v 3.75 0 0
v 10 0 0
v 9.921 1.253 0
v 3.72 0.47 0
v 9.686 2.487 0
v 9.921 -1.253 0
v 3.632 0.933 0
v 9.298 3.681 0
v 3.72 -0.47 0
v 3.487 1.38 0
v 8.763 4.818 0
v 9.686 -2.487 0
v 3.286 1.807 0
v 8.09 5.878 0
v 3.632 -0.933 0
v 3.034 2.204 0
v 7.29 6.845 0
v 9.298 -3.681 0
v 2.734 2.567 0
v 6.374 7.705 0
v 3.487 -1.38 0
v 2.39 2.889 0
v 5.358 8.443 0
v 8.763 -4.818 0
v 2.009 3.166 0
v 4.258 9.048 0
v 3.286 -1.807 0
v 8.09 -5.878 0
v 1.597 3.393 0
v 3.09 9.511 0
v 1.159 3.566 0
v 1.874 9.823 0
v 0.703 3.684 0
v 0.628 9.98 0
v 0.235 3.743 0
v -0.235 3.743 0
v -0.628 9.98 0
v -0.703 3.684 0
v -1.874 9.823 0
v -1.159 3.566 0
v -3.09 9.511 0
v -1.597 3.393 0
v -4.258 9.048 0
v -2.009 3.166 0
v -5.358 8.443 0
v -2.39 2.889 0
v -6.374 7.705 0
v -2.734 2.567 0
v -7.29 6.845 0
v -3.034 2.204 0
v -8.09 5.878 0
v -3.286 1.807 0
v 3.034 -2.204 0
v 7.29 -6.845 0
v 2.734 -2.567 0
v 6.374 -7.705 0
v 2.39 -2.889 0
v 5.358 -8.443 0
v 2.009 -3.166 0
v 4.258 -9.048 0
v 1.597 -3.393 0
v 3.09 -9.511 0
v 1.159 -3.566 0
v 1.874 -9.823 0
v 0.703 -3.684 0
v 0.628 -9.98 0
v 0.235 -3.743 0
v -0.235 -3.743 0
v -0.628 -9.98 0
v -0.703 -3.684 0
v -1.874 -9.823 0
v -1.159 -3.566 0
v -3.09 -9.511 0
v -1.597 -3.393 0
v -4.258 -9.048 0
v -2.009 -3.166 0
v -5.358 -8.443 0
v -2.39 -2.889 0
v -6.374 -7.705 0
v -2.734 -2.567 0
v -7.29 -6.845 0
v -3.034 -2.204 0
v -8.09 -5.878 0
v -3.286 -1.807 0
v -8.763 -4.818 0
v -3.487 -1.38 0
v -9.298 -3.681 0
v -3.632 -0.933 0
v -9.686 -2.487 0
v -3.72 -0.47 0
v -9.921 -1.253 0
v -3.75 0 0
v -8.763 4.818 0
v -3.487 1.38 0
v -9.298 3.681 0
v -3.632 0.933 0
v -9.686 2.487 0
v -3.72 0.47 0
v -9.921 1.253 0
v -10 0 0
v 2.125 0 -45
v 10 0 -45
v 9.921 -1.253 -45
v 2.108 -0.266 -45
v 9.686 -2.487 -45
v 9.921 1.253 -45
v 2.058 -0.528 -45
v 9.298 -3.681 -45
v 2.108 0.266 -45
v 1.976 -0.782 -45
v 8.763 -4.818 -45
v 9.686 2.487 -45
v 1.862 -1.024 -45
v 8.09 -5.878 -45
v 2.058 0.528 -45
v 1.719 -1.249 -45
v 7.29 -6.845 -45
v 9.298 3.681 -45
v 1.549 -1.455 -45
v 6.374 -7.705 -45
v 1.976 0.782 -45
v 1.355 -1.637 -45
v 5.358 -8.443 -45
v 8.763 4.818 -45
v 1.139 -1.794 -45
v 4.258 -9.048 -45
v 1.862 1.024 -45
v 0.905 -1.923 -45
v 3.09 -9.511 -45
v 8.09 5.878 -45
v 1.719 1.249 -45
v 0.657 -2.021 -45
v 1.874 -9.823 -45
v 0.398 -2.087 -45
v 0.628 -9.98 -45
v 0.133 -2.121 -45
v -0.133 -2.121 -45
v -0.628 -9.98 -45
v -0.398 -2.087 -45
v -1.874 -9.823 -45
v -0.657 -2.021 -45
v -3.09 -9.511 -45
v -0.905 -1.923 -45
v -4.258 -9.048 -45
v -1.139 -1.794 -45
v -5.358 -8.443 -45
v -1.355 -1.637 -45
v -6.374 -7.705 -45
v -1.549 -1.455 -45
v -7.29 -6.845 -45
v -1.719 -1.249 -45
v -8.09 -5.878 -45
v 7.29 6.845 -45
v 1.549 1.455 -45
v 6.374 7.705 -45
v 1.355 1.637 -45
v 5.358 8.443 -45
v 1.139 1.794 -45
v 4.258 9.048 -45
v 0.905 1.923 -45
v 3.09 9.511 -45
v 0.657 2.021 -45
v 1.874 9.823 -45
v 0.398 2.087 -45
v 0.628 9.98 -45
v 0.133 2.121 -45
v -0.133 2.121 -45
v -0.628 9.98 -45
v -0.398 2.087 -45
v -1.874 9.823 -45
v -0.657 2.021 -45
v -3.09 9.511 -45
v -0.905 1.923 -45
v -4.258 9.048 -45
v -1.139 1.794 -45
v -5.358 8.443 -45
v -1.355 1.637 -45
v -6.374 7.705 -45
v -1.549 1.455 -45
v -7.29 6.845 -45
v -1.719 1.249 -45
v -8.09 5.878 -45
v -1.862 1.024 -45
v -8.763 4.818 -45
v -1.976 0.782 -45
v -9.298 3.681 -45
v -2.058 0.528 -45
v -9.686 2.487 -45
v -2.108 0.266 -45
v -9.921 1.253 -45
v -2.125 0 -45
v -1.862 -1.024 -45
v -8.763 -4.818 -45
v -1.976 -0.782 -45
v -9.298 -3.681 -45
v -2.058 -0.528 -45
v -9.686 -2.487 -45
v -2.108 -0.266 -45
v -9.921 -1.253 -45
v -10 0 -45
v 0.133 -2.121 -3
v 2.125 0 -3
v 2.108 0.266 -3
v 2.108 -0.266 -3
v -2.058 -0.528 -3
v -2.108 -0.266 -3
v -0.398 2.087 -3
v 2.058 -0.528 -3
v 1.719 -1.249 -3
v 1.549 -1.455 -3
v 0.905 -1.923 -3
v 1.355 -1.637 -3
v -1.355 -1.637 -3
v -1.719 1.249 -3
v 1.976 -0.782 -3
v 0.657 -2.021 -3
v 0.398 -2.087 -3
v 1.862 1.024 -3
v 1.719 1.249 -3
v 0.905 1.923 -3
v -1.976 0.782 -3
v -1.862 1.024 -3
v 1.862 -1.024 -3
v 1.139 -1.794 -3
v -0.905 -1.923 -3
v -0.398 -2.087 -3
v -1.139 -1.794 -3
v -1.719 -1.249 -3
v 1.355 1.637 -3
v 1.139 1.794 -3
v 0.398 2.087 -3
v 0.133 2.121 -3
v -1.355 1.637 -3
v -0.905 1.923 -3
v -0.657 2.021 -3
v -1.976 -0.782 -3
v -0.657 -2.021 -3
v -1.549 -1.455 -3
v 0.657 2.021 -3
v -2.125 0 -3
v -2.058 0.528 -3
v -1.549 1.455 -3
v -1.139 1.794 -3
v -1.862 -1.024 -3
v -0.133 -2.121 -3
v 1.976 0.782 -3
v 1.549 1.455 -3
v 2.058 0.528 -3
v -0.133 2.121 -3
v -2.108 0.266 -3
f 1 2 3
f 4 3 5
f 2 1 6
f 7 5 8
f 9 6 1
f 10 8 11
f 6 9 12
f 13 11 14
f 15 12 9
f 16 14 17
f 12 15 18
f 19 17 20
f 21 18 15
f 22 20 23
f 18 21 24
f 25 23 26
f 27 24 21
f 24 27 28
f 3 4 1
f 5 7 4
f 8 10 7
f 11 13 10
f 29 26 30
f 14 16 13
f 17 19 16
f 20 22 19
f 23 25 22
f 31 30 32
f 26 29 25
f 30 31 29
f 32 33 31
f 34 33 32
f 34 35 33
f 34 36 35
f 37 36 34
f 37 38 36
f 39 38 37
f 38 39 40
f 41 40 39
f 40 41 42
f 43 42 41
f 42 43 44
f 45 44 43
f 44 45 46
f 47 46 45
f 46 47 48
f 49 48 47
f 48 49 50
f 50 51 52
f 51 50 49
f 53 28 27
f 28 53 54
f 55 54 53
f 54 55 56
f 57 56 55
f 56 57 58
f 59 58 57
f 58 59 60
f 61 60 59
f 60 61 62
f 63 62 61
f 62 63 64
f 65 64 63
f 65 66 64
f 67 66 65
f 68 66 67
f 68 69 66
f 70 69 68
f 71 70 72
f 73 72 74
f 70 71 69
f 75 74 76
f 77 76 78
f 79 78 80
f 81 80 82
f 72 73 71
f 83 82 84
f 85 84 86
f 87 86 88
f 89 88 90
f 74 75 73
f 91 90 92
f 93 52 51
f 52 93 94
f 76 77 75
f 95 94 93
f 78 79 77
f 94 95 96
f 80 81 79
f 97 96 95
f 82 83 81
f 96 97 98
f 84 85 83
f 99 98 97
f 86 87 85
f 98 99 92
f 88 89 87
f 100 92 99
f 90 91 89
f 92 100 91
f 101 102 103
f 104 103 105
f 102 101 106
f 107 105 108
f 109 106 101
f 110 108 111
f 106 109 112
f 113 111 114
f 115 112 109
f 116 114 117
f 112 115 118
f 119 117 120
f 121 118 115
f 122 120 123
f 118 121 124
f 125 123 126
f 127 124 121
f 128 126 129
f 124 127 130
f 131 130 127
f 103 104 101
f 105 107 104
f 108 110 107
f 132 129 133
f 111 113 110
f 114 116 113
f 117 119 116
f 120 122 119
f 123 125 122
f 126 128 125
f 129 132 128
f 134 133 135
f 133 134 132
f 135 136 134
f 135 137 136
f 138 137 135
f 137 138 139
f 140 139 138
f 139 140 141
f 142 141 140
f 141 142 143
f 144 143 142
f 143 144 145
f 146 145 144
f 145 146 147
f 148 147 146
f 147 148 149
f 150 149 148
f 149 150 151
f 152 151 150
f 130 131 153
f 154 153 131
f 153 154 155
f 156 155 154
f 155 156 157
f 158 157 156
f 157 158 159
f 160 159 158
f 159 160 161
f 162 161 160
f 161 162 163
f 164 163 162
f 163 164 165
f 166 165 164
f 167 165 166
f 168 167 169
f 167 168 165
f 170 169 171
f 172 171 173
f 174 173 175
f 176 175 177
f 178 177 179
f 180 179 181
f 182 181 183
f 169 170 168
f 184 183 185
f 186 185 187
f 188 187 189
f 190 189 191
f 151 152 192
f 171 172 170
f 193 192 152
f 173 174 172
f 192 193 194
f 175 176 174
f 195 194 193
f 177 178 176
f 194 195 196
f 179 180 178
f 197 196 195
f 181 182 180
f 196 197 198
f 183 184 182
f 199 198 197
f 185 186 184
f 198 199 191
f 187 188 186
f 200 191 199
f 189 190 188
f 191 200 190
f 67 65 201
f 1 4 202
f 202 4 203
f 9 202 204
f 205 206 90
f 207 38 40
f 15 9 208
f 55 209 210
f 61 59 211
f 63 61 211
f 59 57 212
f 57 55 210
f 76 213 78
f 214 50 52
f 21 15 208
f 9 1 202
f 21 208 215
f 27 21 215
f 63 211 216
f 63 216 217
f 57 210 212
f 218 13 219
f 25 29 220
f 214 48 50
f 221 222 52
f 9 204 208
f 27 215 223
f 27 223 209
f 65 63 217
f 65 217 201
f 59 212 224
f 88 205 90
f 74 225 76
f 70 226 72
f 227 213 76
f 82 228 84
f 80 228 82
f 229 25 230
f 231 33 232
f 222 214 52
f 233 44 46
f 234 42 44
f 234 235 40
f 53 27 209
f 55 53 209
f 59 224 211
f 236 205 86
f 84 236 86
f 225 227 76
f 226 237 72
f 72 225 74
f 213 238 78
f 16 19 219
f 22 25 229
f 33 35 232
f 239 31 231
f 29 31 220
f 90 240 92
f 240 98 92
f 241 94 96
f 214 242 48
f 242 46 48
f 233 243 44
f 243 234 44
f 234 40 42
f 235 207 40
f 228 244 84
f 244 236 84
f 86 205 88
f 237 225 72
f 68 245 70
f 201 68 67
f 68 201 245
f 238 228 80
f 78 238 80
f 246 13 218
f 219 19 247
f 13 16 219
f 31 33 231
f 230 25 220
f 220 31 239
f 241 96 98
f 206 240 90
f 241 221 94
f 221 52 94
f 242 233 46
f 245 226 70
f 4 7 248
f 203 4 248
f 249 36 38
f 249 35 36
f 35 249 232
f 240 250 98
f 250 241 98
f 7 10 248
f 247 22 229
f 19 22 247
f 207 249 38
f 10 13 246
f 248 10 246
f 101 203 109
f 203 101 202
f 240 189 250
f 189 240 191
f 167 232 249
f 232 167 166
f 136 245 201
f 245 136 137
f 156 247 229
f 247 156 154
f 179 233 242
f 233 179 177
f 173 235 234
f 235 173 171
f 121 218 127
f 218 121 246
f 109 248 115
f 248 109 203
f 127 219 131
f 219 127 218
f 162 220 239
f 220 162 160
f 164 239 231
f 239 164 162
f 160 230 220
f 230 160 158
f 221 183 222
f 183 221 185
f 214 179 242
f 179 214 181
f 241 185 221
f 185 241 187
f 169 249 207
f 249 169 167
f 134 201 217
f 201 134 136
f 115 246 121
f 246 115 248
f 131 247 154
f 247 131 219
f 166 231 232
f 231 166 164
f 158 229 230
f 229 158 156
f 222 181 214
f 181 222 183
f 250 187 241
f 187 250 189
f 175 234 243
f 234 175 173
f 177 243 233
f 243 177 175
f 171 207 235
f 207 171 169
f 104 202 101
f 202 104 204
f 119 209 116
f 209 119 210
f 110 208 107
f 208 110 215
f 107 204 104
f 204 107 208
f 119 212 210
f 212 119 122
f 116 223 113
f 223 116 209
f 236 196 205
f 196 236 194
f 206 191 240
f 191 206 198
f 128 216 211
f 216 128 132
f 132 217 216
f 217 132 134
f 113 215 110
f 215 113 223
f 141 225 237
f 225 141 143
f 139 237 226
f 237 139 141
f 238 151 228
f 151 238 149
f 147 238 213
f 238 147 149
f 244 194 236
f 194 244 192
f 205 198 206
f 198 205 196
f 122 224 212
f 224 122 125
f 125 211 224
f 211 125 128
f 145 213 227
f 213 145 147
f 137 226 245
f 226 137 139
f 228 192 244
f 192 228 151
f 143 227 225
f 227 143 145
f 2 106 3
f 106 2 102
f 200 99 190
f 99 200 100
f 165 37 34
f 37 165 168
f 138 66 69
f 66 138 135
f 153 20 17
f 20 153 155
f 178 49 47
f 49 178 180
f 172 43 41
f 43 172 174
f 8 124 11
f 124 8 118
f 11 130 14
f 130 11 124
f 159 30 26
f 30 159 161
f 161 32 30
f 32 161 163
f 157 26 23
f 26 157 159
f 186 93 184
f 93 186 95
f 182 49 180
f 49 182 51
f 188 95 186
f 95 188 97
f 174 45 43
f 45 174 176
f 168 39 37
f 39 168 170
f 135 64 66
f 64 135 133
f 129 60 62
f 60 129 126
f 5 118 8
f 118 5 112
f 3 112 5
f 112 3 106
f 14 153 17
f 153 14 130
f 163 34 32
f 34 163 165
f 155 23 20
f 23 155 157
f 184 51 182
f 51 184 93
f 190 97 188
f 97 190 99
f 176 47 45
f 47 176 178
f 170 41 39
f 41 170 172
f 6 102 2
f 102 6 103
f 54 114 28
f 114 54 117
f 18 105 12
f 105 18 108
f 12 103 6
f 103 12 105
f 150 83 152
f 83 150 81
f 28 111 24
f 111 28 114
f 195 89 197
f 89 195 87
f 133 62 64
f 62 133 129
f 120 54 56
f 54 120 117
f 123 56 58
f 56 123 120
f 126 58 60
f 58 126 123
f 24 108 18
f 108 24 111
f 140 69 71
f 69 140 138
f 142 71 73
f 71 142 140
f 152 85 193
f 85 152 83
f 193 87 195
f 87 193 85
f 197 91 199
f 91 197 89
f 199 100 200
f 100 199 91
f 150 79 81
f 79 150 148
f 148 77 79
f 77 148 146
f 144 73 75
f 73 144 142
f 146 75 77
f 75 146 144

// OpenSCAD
$fn = 50;


difference() {
	union() {
		translate(v = [0, 0, -45.0000000000]) {
			cylinder(h = 45, r = 10.0000000000);
		}
	}
	union() {
		translate(v = [0, 0, 0]) {
			rotate(a = [0, 0, 0]) {
				difference() {
					union() {
						#translate(v = [0, 0, -45.0000000000]) {
							cylinder(h = 45, r = 2.0000000000);
						}
						#translate(v = [0, 0, -3]) {
							cylinder(h = 3, r = 10.0000000000, r1 = 2.1250000000, r2 = 3.7500000000);
						}
						#translate(v = [0, 0, -45.0000000000]) {
							cylinder(h = 45, r = 2.1250000000);
						}
						#translate(v = [0, 0, -45.0000000000]) {
							cylinder(h = 45, r = 2.0000000000);
						}
					}
					union();
				}
			}
		}
	}
}
